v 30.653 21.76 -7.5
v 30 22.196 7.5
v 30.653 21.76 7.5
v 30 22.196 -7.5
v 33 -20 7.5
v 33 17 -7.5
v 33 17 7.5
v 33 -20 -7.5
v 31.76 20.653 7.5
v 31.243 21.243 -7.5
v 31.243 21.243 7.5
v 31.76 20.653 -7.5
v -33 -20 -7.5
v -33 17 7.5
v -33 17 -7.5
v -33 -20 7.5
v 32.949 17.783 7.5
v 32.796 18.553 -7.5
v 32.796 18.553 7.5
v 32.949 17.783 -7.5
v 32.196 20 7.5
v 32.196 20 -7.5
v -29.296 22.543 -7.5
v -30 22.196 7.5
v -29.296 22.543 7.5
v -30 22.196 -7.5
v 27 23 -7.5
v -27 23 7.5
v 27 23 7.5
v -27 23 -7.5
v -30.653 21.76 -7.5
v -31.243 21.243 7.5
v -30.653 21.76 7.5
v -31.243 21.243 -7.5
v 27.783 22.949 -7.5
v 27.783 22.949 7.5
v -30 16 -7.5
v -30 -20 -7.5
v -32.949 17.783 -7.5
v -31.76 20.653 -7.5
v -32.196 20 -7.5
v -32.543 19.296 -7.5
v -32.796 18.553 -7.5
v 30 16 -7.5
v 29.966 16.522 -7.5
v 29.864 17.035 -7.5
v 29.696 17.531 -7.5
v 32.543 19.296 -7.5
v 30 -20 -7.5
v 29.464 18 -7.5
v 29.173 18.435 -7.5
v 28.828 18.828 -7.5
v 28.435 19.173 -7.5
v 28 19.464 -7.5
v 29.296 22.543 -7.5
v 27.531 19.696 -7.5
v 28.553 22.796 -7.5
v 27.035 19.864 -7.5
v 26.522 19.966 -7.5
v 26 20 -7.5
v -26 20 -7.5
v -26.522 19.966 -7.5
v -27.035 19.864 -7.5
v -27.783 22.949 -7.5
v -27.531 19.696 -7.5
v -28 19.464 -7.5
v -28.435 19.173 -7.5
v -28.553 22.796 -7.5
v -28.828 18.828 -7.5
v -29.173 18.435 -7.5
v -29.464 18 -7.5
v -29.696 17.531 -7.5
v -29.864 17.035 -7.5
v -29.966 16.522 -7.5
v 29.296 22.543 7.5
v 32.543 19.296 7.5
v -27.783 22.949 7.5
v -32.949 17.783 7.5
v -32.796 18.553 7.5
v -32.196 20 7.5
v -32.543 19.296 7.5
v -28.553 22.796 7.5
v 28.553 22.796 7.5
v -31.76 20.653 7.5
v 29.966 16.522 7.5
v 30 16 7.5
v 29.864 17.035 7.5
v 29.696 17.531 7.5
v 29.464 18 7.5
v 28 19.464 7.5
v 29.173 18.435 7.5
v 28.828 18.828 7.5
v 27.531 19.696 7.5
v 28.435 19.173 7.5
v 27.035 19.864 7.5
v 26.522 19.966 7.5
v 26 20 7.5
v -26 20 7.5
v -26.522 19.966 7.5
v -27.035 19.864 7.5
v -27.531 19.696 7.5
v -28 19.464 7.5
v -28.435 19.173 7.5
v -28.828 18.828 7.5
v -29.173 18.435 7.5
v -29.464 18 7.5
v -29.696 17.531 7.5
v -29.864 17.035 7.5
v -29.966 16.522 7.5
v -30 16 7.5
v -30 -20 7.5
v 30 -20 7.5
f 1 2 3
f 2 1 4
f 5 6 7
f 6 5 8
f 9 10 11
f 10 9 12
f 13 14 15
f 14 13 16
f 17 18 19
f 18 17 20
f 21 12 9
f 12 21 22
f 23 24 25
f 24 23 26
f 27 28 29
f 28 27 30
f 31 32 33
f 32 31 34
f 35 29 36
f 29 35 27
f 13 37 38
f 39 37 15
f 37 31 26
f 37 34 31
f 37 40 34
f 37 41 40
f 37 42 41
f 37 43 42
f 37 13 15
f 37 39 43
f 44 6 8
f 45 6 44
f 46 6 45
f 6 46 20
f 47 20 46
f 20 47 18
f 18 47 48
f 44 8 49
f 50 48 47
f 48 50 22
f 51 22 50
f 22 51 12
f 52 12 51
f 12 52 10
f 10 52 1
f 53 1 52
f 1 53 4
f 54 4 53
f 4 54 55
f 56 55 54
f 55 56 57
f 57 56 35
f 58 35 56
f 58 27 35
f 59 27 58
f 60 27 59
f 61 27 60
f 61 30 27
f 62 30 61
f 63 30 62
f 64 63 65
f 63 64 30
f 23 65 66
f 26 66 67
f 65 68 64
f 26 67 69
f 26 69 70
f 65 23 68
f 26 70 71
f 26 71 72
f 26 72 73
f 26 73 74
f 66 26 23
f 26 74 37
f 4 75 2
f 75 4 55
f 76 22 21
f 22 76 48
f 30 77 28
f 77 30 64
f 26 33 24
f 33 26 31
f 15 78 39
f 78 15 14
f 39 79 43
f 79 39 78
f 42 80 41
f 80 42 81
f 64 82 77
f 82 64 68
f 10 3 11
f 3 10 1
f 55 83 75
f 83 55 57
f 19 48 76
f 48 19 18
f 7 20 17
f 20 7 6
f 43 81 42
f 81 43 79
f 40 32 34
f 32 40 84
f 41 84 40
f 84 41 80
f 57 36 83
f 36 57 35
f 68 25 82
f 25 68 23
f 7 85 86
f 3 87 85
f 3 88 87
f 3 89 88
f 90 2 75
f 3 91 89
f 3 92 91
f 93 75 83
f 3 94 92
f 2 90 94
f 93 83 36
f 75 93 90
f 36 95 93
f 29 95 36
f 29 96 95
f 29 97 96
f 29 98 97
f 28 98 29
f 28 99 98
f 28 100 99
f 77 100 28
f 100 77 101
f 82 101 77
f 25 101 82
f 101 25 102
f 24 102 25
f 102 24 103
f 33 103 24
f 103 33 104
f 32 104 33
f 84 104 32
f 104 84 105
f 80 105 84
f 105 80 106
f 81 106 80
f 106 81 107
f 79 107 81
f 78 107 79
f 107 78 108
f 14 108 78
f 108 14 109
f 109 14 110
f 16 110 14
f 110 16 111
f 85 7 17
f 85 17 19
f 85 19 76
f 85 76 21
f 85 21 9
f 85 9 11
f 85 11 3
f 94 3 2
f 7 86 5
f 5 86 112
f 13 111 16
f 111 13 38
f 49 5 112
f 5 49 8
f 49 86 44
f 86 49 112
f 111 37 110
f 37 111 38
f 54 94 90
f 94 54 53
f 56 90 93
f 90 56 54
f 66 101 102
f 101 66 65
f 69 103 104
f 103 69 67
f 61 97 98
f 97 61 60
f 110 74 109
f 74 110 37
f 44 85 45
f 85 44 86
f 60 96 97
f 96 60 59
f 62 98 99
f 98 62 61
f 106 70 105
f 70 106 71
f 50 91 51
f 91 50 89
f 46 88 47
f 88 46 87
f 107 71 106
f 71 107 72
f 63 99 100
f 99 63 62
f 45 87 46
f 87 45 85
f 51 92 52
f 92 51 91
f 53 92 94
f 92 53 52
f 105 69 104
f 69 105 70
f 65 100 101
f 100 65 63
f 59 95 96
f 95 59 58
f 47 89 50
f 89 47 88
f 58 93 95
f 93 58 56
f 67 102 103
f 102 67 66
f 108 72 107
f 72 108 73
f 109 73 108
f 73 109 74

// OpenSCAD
// Cradle for the Nerf gun to sit in (open-top tray)
// Export: F6 to render, then File > Export > Export as STL
// All dimensions in mm.

/* [Cavity] */
// Internal cavity the gun sits in
// Inner (cavity) 60 x 40 x 15 mm; outer = cavity + 2 x wall
cavity_width  = 60.0;   // X (the 60)
cavity_height = 15.0;   // Z
cavity_length = 40.0;   // Y (the 40)

/* [Walls] */
wall_thickness = 3.0;
// No base: the cradle is open at both ends (set > 0 to add a floor)
base_thickness = 0.0;

/* [Corner radii] */
// Radius on the inside corners of the cavity
inner_corner_radius = 4.0;
// Radius on the outside corners of the cradle
outer_corner_radius = 6.0;

/* [Base fillet] */
// Fillet where the cavity floor meets the walls
floor_fillet = 3.0;

/* [Open side] */
// Completely open one of the short sides
open_short_side = true;
// Which short side: -1 = -X, +1 = +X
open_side = -1;

/* [Mounts] */
// Pipe sockets coming off each side that a 10 mm pipe slides into
mount_pipes    = false;
pipe_dia       = 10.0;  // pipe bore (slip fit)
socket_outer_dia = 16.0;
socket_length  = 15.0;  // how far the socket sticks out
// Socket height as a fraction of the wall (0 = bottom edge, 0.5 = centred)
socket_z_fraction = 0.5;
// Distance of the socket centre from the closed end, along Y
socket_y = 100.0;
// Grub screw hole through the socket wall (kept for reference; unused)
grub_dia = 3.0;
// Clamp hardware
clamp_slit   = 1.6;  // slit width
clamp_ear_h  = 6.0;  // how far the clamp ears stick out
clamp_ear_w  = 5.0;  // ear width each side of the slit
clamp_bolt_dia = 3.4; // M3 bolt clearance
clamp_nut_af   = 5.5; // M3 hex nut across flats

/* [Capsule opening] */
// Capsule slot through the closed short wall (centred in X)
capsule_length = 35.0;
capsule_width  = 10.0;
// Distance from the bottom edge to the start of the capsule
capsule_from_bottom = 13.0;

/* [Quality] */
$fn = 48;

outer_width  = cavity_width  + 2 * wall_thickness;
outer_length = cavity_length + 2 * wall_thickness;
outer_height = cavity_height + base_thickness;

module rounded_rect(width, length, radius) {
    offset(r = radius) square([width - 2 * radius, length - 2 * radius], center = true);
}

module pipe_socket() {
    // Plain slip-fit socket (no clamp or tightening holes)
    difference() {
        cylinder(d = socket_outer_dia, h = socket_length, center = true);
        cylinder(d = pipe_dia, h = socket_length + 2, center = true);
    }
}

module gun_cradle() {
    difference() {
        // Outer shell with rounded outside corners, squared off at the open end
        union() {
            linear_extrude(height = outer_height, center = true)
                rounded_rect(outer_width, outer_length, outer_corner_radius);
            if (open_short_side) {
                translate([0, open_side * (outer_length / 2 - outer_corner_radius / 2), 0])
                    linear_extrude(height = outer_height, center = true)
                        square([outer_width, outer_corner_radius], center = true);
            }
            // Pipe sockets coming off each side at the bottom
            if (mount_pipes) {
                for (x = [-1, 1]) {
                    translate([x * (outer_width / 2 + socket_length / 2 - 1),
                               -outer_length / 2 + socket_y,
                               -outer_height / 2 + socket_z_fraction * outer_height])
                        rotate([0, 90, 0])
                            pipe_socket();
                }
            }
        }

        // Cavity with rounded inside corners, open at the top
        translate([0, 0, base_thickness / 2 + 0.5])
            linear_extrude(height = cavity_height + 1, center = true)
                rounded_rect(cavity_width, cavity_length, inner_corner_radius);

        // Capsule opening disabled for this part (too short to fit)
        // Remove one short side (±Y walls, the 60 mm-wide faces) entirely
        if (open_short_side) {
            translate([0, open_side * (cavity_length / 2 + wall_thickness / 2 + 0.5), 0])
                cube([outer_width + 2, wall_thickness + 1, outer_height + 2], center = true);
            // Square the inner cavity corners at the open end as well
            translate([0, open_side * (cavity_length / 2 - inner_corner_radius / 2), 0])
                linear_extrude(height = cavity_height + 2, center = true)
                    square([cavity_width, inner_corner_radius], center = true);
        }
    }
}

gun_cradle();
